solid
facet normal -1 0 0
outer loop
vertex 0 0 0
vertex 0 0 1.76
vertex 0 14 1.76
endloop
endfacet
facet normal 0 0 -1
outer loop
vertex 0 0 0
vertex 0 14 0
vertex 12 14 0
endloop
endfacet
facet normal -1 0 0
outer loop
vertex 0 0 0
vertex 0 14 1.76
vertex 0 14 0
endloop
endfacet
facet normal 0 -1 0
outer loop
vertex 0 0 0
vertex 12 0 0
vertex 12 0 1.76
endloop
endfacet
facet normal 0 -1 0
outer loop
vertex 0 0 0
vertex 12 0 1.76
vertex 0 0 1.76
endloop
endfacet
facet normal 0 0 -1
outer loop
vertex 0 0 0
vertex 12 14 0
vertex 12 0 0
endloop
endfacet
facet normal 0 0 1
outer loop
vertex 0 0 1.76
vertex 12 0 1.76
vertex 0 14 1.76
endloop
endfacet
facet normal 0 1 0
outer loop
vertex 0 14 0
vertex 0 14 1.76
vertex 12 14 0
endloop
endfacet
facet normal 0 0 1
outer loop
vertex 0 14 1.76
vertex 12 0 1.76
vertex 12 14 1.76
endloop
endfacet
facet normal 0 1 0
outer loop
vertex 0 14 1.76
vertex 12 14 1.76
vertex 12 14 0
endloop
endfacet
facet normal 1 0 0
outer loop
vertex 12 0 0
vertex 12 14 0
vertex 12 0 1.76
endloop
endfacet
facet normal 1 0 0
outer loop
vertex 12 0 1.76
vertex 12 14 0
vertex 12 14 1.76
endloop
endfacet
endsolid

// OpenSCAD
/* Warning, this is a very basic generator with a lot of approximation 
input data : [FBGA, TCC, 12x14x1.76mm, 621, , A, C04-25690A]
generated by com.zoubworld.electronics.cad.model3d.Basic
Date : Sun Feb 15 10:50:49 CET 2026
*/

//body
color("black")
translate([0,0,0])
cube([12.0,14.0,1.76], center=false);
